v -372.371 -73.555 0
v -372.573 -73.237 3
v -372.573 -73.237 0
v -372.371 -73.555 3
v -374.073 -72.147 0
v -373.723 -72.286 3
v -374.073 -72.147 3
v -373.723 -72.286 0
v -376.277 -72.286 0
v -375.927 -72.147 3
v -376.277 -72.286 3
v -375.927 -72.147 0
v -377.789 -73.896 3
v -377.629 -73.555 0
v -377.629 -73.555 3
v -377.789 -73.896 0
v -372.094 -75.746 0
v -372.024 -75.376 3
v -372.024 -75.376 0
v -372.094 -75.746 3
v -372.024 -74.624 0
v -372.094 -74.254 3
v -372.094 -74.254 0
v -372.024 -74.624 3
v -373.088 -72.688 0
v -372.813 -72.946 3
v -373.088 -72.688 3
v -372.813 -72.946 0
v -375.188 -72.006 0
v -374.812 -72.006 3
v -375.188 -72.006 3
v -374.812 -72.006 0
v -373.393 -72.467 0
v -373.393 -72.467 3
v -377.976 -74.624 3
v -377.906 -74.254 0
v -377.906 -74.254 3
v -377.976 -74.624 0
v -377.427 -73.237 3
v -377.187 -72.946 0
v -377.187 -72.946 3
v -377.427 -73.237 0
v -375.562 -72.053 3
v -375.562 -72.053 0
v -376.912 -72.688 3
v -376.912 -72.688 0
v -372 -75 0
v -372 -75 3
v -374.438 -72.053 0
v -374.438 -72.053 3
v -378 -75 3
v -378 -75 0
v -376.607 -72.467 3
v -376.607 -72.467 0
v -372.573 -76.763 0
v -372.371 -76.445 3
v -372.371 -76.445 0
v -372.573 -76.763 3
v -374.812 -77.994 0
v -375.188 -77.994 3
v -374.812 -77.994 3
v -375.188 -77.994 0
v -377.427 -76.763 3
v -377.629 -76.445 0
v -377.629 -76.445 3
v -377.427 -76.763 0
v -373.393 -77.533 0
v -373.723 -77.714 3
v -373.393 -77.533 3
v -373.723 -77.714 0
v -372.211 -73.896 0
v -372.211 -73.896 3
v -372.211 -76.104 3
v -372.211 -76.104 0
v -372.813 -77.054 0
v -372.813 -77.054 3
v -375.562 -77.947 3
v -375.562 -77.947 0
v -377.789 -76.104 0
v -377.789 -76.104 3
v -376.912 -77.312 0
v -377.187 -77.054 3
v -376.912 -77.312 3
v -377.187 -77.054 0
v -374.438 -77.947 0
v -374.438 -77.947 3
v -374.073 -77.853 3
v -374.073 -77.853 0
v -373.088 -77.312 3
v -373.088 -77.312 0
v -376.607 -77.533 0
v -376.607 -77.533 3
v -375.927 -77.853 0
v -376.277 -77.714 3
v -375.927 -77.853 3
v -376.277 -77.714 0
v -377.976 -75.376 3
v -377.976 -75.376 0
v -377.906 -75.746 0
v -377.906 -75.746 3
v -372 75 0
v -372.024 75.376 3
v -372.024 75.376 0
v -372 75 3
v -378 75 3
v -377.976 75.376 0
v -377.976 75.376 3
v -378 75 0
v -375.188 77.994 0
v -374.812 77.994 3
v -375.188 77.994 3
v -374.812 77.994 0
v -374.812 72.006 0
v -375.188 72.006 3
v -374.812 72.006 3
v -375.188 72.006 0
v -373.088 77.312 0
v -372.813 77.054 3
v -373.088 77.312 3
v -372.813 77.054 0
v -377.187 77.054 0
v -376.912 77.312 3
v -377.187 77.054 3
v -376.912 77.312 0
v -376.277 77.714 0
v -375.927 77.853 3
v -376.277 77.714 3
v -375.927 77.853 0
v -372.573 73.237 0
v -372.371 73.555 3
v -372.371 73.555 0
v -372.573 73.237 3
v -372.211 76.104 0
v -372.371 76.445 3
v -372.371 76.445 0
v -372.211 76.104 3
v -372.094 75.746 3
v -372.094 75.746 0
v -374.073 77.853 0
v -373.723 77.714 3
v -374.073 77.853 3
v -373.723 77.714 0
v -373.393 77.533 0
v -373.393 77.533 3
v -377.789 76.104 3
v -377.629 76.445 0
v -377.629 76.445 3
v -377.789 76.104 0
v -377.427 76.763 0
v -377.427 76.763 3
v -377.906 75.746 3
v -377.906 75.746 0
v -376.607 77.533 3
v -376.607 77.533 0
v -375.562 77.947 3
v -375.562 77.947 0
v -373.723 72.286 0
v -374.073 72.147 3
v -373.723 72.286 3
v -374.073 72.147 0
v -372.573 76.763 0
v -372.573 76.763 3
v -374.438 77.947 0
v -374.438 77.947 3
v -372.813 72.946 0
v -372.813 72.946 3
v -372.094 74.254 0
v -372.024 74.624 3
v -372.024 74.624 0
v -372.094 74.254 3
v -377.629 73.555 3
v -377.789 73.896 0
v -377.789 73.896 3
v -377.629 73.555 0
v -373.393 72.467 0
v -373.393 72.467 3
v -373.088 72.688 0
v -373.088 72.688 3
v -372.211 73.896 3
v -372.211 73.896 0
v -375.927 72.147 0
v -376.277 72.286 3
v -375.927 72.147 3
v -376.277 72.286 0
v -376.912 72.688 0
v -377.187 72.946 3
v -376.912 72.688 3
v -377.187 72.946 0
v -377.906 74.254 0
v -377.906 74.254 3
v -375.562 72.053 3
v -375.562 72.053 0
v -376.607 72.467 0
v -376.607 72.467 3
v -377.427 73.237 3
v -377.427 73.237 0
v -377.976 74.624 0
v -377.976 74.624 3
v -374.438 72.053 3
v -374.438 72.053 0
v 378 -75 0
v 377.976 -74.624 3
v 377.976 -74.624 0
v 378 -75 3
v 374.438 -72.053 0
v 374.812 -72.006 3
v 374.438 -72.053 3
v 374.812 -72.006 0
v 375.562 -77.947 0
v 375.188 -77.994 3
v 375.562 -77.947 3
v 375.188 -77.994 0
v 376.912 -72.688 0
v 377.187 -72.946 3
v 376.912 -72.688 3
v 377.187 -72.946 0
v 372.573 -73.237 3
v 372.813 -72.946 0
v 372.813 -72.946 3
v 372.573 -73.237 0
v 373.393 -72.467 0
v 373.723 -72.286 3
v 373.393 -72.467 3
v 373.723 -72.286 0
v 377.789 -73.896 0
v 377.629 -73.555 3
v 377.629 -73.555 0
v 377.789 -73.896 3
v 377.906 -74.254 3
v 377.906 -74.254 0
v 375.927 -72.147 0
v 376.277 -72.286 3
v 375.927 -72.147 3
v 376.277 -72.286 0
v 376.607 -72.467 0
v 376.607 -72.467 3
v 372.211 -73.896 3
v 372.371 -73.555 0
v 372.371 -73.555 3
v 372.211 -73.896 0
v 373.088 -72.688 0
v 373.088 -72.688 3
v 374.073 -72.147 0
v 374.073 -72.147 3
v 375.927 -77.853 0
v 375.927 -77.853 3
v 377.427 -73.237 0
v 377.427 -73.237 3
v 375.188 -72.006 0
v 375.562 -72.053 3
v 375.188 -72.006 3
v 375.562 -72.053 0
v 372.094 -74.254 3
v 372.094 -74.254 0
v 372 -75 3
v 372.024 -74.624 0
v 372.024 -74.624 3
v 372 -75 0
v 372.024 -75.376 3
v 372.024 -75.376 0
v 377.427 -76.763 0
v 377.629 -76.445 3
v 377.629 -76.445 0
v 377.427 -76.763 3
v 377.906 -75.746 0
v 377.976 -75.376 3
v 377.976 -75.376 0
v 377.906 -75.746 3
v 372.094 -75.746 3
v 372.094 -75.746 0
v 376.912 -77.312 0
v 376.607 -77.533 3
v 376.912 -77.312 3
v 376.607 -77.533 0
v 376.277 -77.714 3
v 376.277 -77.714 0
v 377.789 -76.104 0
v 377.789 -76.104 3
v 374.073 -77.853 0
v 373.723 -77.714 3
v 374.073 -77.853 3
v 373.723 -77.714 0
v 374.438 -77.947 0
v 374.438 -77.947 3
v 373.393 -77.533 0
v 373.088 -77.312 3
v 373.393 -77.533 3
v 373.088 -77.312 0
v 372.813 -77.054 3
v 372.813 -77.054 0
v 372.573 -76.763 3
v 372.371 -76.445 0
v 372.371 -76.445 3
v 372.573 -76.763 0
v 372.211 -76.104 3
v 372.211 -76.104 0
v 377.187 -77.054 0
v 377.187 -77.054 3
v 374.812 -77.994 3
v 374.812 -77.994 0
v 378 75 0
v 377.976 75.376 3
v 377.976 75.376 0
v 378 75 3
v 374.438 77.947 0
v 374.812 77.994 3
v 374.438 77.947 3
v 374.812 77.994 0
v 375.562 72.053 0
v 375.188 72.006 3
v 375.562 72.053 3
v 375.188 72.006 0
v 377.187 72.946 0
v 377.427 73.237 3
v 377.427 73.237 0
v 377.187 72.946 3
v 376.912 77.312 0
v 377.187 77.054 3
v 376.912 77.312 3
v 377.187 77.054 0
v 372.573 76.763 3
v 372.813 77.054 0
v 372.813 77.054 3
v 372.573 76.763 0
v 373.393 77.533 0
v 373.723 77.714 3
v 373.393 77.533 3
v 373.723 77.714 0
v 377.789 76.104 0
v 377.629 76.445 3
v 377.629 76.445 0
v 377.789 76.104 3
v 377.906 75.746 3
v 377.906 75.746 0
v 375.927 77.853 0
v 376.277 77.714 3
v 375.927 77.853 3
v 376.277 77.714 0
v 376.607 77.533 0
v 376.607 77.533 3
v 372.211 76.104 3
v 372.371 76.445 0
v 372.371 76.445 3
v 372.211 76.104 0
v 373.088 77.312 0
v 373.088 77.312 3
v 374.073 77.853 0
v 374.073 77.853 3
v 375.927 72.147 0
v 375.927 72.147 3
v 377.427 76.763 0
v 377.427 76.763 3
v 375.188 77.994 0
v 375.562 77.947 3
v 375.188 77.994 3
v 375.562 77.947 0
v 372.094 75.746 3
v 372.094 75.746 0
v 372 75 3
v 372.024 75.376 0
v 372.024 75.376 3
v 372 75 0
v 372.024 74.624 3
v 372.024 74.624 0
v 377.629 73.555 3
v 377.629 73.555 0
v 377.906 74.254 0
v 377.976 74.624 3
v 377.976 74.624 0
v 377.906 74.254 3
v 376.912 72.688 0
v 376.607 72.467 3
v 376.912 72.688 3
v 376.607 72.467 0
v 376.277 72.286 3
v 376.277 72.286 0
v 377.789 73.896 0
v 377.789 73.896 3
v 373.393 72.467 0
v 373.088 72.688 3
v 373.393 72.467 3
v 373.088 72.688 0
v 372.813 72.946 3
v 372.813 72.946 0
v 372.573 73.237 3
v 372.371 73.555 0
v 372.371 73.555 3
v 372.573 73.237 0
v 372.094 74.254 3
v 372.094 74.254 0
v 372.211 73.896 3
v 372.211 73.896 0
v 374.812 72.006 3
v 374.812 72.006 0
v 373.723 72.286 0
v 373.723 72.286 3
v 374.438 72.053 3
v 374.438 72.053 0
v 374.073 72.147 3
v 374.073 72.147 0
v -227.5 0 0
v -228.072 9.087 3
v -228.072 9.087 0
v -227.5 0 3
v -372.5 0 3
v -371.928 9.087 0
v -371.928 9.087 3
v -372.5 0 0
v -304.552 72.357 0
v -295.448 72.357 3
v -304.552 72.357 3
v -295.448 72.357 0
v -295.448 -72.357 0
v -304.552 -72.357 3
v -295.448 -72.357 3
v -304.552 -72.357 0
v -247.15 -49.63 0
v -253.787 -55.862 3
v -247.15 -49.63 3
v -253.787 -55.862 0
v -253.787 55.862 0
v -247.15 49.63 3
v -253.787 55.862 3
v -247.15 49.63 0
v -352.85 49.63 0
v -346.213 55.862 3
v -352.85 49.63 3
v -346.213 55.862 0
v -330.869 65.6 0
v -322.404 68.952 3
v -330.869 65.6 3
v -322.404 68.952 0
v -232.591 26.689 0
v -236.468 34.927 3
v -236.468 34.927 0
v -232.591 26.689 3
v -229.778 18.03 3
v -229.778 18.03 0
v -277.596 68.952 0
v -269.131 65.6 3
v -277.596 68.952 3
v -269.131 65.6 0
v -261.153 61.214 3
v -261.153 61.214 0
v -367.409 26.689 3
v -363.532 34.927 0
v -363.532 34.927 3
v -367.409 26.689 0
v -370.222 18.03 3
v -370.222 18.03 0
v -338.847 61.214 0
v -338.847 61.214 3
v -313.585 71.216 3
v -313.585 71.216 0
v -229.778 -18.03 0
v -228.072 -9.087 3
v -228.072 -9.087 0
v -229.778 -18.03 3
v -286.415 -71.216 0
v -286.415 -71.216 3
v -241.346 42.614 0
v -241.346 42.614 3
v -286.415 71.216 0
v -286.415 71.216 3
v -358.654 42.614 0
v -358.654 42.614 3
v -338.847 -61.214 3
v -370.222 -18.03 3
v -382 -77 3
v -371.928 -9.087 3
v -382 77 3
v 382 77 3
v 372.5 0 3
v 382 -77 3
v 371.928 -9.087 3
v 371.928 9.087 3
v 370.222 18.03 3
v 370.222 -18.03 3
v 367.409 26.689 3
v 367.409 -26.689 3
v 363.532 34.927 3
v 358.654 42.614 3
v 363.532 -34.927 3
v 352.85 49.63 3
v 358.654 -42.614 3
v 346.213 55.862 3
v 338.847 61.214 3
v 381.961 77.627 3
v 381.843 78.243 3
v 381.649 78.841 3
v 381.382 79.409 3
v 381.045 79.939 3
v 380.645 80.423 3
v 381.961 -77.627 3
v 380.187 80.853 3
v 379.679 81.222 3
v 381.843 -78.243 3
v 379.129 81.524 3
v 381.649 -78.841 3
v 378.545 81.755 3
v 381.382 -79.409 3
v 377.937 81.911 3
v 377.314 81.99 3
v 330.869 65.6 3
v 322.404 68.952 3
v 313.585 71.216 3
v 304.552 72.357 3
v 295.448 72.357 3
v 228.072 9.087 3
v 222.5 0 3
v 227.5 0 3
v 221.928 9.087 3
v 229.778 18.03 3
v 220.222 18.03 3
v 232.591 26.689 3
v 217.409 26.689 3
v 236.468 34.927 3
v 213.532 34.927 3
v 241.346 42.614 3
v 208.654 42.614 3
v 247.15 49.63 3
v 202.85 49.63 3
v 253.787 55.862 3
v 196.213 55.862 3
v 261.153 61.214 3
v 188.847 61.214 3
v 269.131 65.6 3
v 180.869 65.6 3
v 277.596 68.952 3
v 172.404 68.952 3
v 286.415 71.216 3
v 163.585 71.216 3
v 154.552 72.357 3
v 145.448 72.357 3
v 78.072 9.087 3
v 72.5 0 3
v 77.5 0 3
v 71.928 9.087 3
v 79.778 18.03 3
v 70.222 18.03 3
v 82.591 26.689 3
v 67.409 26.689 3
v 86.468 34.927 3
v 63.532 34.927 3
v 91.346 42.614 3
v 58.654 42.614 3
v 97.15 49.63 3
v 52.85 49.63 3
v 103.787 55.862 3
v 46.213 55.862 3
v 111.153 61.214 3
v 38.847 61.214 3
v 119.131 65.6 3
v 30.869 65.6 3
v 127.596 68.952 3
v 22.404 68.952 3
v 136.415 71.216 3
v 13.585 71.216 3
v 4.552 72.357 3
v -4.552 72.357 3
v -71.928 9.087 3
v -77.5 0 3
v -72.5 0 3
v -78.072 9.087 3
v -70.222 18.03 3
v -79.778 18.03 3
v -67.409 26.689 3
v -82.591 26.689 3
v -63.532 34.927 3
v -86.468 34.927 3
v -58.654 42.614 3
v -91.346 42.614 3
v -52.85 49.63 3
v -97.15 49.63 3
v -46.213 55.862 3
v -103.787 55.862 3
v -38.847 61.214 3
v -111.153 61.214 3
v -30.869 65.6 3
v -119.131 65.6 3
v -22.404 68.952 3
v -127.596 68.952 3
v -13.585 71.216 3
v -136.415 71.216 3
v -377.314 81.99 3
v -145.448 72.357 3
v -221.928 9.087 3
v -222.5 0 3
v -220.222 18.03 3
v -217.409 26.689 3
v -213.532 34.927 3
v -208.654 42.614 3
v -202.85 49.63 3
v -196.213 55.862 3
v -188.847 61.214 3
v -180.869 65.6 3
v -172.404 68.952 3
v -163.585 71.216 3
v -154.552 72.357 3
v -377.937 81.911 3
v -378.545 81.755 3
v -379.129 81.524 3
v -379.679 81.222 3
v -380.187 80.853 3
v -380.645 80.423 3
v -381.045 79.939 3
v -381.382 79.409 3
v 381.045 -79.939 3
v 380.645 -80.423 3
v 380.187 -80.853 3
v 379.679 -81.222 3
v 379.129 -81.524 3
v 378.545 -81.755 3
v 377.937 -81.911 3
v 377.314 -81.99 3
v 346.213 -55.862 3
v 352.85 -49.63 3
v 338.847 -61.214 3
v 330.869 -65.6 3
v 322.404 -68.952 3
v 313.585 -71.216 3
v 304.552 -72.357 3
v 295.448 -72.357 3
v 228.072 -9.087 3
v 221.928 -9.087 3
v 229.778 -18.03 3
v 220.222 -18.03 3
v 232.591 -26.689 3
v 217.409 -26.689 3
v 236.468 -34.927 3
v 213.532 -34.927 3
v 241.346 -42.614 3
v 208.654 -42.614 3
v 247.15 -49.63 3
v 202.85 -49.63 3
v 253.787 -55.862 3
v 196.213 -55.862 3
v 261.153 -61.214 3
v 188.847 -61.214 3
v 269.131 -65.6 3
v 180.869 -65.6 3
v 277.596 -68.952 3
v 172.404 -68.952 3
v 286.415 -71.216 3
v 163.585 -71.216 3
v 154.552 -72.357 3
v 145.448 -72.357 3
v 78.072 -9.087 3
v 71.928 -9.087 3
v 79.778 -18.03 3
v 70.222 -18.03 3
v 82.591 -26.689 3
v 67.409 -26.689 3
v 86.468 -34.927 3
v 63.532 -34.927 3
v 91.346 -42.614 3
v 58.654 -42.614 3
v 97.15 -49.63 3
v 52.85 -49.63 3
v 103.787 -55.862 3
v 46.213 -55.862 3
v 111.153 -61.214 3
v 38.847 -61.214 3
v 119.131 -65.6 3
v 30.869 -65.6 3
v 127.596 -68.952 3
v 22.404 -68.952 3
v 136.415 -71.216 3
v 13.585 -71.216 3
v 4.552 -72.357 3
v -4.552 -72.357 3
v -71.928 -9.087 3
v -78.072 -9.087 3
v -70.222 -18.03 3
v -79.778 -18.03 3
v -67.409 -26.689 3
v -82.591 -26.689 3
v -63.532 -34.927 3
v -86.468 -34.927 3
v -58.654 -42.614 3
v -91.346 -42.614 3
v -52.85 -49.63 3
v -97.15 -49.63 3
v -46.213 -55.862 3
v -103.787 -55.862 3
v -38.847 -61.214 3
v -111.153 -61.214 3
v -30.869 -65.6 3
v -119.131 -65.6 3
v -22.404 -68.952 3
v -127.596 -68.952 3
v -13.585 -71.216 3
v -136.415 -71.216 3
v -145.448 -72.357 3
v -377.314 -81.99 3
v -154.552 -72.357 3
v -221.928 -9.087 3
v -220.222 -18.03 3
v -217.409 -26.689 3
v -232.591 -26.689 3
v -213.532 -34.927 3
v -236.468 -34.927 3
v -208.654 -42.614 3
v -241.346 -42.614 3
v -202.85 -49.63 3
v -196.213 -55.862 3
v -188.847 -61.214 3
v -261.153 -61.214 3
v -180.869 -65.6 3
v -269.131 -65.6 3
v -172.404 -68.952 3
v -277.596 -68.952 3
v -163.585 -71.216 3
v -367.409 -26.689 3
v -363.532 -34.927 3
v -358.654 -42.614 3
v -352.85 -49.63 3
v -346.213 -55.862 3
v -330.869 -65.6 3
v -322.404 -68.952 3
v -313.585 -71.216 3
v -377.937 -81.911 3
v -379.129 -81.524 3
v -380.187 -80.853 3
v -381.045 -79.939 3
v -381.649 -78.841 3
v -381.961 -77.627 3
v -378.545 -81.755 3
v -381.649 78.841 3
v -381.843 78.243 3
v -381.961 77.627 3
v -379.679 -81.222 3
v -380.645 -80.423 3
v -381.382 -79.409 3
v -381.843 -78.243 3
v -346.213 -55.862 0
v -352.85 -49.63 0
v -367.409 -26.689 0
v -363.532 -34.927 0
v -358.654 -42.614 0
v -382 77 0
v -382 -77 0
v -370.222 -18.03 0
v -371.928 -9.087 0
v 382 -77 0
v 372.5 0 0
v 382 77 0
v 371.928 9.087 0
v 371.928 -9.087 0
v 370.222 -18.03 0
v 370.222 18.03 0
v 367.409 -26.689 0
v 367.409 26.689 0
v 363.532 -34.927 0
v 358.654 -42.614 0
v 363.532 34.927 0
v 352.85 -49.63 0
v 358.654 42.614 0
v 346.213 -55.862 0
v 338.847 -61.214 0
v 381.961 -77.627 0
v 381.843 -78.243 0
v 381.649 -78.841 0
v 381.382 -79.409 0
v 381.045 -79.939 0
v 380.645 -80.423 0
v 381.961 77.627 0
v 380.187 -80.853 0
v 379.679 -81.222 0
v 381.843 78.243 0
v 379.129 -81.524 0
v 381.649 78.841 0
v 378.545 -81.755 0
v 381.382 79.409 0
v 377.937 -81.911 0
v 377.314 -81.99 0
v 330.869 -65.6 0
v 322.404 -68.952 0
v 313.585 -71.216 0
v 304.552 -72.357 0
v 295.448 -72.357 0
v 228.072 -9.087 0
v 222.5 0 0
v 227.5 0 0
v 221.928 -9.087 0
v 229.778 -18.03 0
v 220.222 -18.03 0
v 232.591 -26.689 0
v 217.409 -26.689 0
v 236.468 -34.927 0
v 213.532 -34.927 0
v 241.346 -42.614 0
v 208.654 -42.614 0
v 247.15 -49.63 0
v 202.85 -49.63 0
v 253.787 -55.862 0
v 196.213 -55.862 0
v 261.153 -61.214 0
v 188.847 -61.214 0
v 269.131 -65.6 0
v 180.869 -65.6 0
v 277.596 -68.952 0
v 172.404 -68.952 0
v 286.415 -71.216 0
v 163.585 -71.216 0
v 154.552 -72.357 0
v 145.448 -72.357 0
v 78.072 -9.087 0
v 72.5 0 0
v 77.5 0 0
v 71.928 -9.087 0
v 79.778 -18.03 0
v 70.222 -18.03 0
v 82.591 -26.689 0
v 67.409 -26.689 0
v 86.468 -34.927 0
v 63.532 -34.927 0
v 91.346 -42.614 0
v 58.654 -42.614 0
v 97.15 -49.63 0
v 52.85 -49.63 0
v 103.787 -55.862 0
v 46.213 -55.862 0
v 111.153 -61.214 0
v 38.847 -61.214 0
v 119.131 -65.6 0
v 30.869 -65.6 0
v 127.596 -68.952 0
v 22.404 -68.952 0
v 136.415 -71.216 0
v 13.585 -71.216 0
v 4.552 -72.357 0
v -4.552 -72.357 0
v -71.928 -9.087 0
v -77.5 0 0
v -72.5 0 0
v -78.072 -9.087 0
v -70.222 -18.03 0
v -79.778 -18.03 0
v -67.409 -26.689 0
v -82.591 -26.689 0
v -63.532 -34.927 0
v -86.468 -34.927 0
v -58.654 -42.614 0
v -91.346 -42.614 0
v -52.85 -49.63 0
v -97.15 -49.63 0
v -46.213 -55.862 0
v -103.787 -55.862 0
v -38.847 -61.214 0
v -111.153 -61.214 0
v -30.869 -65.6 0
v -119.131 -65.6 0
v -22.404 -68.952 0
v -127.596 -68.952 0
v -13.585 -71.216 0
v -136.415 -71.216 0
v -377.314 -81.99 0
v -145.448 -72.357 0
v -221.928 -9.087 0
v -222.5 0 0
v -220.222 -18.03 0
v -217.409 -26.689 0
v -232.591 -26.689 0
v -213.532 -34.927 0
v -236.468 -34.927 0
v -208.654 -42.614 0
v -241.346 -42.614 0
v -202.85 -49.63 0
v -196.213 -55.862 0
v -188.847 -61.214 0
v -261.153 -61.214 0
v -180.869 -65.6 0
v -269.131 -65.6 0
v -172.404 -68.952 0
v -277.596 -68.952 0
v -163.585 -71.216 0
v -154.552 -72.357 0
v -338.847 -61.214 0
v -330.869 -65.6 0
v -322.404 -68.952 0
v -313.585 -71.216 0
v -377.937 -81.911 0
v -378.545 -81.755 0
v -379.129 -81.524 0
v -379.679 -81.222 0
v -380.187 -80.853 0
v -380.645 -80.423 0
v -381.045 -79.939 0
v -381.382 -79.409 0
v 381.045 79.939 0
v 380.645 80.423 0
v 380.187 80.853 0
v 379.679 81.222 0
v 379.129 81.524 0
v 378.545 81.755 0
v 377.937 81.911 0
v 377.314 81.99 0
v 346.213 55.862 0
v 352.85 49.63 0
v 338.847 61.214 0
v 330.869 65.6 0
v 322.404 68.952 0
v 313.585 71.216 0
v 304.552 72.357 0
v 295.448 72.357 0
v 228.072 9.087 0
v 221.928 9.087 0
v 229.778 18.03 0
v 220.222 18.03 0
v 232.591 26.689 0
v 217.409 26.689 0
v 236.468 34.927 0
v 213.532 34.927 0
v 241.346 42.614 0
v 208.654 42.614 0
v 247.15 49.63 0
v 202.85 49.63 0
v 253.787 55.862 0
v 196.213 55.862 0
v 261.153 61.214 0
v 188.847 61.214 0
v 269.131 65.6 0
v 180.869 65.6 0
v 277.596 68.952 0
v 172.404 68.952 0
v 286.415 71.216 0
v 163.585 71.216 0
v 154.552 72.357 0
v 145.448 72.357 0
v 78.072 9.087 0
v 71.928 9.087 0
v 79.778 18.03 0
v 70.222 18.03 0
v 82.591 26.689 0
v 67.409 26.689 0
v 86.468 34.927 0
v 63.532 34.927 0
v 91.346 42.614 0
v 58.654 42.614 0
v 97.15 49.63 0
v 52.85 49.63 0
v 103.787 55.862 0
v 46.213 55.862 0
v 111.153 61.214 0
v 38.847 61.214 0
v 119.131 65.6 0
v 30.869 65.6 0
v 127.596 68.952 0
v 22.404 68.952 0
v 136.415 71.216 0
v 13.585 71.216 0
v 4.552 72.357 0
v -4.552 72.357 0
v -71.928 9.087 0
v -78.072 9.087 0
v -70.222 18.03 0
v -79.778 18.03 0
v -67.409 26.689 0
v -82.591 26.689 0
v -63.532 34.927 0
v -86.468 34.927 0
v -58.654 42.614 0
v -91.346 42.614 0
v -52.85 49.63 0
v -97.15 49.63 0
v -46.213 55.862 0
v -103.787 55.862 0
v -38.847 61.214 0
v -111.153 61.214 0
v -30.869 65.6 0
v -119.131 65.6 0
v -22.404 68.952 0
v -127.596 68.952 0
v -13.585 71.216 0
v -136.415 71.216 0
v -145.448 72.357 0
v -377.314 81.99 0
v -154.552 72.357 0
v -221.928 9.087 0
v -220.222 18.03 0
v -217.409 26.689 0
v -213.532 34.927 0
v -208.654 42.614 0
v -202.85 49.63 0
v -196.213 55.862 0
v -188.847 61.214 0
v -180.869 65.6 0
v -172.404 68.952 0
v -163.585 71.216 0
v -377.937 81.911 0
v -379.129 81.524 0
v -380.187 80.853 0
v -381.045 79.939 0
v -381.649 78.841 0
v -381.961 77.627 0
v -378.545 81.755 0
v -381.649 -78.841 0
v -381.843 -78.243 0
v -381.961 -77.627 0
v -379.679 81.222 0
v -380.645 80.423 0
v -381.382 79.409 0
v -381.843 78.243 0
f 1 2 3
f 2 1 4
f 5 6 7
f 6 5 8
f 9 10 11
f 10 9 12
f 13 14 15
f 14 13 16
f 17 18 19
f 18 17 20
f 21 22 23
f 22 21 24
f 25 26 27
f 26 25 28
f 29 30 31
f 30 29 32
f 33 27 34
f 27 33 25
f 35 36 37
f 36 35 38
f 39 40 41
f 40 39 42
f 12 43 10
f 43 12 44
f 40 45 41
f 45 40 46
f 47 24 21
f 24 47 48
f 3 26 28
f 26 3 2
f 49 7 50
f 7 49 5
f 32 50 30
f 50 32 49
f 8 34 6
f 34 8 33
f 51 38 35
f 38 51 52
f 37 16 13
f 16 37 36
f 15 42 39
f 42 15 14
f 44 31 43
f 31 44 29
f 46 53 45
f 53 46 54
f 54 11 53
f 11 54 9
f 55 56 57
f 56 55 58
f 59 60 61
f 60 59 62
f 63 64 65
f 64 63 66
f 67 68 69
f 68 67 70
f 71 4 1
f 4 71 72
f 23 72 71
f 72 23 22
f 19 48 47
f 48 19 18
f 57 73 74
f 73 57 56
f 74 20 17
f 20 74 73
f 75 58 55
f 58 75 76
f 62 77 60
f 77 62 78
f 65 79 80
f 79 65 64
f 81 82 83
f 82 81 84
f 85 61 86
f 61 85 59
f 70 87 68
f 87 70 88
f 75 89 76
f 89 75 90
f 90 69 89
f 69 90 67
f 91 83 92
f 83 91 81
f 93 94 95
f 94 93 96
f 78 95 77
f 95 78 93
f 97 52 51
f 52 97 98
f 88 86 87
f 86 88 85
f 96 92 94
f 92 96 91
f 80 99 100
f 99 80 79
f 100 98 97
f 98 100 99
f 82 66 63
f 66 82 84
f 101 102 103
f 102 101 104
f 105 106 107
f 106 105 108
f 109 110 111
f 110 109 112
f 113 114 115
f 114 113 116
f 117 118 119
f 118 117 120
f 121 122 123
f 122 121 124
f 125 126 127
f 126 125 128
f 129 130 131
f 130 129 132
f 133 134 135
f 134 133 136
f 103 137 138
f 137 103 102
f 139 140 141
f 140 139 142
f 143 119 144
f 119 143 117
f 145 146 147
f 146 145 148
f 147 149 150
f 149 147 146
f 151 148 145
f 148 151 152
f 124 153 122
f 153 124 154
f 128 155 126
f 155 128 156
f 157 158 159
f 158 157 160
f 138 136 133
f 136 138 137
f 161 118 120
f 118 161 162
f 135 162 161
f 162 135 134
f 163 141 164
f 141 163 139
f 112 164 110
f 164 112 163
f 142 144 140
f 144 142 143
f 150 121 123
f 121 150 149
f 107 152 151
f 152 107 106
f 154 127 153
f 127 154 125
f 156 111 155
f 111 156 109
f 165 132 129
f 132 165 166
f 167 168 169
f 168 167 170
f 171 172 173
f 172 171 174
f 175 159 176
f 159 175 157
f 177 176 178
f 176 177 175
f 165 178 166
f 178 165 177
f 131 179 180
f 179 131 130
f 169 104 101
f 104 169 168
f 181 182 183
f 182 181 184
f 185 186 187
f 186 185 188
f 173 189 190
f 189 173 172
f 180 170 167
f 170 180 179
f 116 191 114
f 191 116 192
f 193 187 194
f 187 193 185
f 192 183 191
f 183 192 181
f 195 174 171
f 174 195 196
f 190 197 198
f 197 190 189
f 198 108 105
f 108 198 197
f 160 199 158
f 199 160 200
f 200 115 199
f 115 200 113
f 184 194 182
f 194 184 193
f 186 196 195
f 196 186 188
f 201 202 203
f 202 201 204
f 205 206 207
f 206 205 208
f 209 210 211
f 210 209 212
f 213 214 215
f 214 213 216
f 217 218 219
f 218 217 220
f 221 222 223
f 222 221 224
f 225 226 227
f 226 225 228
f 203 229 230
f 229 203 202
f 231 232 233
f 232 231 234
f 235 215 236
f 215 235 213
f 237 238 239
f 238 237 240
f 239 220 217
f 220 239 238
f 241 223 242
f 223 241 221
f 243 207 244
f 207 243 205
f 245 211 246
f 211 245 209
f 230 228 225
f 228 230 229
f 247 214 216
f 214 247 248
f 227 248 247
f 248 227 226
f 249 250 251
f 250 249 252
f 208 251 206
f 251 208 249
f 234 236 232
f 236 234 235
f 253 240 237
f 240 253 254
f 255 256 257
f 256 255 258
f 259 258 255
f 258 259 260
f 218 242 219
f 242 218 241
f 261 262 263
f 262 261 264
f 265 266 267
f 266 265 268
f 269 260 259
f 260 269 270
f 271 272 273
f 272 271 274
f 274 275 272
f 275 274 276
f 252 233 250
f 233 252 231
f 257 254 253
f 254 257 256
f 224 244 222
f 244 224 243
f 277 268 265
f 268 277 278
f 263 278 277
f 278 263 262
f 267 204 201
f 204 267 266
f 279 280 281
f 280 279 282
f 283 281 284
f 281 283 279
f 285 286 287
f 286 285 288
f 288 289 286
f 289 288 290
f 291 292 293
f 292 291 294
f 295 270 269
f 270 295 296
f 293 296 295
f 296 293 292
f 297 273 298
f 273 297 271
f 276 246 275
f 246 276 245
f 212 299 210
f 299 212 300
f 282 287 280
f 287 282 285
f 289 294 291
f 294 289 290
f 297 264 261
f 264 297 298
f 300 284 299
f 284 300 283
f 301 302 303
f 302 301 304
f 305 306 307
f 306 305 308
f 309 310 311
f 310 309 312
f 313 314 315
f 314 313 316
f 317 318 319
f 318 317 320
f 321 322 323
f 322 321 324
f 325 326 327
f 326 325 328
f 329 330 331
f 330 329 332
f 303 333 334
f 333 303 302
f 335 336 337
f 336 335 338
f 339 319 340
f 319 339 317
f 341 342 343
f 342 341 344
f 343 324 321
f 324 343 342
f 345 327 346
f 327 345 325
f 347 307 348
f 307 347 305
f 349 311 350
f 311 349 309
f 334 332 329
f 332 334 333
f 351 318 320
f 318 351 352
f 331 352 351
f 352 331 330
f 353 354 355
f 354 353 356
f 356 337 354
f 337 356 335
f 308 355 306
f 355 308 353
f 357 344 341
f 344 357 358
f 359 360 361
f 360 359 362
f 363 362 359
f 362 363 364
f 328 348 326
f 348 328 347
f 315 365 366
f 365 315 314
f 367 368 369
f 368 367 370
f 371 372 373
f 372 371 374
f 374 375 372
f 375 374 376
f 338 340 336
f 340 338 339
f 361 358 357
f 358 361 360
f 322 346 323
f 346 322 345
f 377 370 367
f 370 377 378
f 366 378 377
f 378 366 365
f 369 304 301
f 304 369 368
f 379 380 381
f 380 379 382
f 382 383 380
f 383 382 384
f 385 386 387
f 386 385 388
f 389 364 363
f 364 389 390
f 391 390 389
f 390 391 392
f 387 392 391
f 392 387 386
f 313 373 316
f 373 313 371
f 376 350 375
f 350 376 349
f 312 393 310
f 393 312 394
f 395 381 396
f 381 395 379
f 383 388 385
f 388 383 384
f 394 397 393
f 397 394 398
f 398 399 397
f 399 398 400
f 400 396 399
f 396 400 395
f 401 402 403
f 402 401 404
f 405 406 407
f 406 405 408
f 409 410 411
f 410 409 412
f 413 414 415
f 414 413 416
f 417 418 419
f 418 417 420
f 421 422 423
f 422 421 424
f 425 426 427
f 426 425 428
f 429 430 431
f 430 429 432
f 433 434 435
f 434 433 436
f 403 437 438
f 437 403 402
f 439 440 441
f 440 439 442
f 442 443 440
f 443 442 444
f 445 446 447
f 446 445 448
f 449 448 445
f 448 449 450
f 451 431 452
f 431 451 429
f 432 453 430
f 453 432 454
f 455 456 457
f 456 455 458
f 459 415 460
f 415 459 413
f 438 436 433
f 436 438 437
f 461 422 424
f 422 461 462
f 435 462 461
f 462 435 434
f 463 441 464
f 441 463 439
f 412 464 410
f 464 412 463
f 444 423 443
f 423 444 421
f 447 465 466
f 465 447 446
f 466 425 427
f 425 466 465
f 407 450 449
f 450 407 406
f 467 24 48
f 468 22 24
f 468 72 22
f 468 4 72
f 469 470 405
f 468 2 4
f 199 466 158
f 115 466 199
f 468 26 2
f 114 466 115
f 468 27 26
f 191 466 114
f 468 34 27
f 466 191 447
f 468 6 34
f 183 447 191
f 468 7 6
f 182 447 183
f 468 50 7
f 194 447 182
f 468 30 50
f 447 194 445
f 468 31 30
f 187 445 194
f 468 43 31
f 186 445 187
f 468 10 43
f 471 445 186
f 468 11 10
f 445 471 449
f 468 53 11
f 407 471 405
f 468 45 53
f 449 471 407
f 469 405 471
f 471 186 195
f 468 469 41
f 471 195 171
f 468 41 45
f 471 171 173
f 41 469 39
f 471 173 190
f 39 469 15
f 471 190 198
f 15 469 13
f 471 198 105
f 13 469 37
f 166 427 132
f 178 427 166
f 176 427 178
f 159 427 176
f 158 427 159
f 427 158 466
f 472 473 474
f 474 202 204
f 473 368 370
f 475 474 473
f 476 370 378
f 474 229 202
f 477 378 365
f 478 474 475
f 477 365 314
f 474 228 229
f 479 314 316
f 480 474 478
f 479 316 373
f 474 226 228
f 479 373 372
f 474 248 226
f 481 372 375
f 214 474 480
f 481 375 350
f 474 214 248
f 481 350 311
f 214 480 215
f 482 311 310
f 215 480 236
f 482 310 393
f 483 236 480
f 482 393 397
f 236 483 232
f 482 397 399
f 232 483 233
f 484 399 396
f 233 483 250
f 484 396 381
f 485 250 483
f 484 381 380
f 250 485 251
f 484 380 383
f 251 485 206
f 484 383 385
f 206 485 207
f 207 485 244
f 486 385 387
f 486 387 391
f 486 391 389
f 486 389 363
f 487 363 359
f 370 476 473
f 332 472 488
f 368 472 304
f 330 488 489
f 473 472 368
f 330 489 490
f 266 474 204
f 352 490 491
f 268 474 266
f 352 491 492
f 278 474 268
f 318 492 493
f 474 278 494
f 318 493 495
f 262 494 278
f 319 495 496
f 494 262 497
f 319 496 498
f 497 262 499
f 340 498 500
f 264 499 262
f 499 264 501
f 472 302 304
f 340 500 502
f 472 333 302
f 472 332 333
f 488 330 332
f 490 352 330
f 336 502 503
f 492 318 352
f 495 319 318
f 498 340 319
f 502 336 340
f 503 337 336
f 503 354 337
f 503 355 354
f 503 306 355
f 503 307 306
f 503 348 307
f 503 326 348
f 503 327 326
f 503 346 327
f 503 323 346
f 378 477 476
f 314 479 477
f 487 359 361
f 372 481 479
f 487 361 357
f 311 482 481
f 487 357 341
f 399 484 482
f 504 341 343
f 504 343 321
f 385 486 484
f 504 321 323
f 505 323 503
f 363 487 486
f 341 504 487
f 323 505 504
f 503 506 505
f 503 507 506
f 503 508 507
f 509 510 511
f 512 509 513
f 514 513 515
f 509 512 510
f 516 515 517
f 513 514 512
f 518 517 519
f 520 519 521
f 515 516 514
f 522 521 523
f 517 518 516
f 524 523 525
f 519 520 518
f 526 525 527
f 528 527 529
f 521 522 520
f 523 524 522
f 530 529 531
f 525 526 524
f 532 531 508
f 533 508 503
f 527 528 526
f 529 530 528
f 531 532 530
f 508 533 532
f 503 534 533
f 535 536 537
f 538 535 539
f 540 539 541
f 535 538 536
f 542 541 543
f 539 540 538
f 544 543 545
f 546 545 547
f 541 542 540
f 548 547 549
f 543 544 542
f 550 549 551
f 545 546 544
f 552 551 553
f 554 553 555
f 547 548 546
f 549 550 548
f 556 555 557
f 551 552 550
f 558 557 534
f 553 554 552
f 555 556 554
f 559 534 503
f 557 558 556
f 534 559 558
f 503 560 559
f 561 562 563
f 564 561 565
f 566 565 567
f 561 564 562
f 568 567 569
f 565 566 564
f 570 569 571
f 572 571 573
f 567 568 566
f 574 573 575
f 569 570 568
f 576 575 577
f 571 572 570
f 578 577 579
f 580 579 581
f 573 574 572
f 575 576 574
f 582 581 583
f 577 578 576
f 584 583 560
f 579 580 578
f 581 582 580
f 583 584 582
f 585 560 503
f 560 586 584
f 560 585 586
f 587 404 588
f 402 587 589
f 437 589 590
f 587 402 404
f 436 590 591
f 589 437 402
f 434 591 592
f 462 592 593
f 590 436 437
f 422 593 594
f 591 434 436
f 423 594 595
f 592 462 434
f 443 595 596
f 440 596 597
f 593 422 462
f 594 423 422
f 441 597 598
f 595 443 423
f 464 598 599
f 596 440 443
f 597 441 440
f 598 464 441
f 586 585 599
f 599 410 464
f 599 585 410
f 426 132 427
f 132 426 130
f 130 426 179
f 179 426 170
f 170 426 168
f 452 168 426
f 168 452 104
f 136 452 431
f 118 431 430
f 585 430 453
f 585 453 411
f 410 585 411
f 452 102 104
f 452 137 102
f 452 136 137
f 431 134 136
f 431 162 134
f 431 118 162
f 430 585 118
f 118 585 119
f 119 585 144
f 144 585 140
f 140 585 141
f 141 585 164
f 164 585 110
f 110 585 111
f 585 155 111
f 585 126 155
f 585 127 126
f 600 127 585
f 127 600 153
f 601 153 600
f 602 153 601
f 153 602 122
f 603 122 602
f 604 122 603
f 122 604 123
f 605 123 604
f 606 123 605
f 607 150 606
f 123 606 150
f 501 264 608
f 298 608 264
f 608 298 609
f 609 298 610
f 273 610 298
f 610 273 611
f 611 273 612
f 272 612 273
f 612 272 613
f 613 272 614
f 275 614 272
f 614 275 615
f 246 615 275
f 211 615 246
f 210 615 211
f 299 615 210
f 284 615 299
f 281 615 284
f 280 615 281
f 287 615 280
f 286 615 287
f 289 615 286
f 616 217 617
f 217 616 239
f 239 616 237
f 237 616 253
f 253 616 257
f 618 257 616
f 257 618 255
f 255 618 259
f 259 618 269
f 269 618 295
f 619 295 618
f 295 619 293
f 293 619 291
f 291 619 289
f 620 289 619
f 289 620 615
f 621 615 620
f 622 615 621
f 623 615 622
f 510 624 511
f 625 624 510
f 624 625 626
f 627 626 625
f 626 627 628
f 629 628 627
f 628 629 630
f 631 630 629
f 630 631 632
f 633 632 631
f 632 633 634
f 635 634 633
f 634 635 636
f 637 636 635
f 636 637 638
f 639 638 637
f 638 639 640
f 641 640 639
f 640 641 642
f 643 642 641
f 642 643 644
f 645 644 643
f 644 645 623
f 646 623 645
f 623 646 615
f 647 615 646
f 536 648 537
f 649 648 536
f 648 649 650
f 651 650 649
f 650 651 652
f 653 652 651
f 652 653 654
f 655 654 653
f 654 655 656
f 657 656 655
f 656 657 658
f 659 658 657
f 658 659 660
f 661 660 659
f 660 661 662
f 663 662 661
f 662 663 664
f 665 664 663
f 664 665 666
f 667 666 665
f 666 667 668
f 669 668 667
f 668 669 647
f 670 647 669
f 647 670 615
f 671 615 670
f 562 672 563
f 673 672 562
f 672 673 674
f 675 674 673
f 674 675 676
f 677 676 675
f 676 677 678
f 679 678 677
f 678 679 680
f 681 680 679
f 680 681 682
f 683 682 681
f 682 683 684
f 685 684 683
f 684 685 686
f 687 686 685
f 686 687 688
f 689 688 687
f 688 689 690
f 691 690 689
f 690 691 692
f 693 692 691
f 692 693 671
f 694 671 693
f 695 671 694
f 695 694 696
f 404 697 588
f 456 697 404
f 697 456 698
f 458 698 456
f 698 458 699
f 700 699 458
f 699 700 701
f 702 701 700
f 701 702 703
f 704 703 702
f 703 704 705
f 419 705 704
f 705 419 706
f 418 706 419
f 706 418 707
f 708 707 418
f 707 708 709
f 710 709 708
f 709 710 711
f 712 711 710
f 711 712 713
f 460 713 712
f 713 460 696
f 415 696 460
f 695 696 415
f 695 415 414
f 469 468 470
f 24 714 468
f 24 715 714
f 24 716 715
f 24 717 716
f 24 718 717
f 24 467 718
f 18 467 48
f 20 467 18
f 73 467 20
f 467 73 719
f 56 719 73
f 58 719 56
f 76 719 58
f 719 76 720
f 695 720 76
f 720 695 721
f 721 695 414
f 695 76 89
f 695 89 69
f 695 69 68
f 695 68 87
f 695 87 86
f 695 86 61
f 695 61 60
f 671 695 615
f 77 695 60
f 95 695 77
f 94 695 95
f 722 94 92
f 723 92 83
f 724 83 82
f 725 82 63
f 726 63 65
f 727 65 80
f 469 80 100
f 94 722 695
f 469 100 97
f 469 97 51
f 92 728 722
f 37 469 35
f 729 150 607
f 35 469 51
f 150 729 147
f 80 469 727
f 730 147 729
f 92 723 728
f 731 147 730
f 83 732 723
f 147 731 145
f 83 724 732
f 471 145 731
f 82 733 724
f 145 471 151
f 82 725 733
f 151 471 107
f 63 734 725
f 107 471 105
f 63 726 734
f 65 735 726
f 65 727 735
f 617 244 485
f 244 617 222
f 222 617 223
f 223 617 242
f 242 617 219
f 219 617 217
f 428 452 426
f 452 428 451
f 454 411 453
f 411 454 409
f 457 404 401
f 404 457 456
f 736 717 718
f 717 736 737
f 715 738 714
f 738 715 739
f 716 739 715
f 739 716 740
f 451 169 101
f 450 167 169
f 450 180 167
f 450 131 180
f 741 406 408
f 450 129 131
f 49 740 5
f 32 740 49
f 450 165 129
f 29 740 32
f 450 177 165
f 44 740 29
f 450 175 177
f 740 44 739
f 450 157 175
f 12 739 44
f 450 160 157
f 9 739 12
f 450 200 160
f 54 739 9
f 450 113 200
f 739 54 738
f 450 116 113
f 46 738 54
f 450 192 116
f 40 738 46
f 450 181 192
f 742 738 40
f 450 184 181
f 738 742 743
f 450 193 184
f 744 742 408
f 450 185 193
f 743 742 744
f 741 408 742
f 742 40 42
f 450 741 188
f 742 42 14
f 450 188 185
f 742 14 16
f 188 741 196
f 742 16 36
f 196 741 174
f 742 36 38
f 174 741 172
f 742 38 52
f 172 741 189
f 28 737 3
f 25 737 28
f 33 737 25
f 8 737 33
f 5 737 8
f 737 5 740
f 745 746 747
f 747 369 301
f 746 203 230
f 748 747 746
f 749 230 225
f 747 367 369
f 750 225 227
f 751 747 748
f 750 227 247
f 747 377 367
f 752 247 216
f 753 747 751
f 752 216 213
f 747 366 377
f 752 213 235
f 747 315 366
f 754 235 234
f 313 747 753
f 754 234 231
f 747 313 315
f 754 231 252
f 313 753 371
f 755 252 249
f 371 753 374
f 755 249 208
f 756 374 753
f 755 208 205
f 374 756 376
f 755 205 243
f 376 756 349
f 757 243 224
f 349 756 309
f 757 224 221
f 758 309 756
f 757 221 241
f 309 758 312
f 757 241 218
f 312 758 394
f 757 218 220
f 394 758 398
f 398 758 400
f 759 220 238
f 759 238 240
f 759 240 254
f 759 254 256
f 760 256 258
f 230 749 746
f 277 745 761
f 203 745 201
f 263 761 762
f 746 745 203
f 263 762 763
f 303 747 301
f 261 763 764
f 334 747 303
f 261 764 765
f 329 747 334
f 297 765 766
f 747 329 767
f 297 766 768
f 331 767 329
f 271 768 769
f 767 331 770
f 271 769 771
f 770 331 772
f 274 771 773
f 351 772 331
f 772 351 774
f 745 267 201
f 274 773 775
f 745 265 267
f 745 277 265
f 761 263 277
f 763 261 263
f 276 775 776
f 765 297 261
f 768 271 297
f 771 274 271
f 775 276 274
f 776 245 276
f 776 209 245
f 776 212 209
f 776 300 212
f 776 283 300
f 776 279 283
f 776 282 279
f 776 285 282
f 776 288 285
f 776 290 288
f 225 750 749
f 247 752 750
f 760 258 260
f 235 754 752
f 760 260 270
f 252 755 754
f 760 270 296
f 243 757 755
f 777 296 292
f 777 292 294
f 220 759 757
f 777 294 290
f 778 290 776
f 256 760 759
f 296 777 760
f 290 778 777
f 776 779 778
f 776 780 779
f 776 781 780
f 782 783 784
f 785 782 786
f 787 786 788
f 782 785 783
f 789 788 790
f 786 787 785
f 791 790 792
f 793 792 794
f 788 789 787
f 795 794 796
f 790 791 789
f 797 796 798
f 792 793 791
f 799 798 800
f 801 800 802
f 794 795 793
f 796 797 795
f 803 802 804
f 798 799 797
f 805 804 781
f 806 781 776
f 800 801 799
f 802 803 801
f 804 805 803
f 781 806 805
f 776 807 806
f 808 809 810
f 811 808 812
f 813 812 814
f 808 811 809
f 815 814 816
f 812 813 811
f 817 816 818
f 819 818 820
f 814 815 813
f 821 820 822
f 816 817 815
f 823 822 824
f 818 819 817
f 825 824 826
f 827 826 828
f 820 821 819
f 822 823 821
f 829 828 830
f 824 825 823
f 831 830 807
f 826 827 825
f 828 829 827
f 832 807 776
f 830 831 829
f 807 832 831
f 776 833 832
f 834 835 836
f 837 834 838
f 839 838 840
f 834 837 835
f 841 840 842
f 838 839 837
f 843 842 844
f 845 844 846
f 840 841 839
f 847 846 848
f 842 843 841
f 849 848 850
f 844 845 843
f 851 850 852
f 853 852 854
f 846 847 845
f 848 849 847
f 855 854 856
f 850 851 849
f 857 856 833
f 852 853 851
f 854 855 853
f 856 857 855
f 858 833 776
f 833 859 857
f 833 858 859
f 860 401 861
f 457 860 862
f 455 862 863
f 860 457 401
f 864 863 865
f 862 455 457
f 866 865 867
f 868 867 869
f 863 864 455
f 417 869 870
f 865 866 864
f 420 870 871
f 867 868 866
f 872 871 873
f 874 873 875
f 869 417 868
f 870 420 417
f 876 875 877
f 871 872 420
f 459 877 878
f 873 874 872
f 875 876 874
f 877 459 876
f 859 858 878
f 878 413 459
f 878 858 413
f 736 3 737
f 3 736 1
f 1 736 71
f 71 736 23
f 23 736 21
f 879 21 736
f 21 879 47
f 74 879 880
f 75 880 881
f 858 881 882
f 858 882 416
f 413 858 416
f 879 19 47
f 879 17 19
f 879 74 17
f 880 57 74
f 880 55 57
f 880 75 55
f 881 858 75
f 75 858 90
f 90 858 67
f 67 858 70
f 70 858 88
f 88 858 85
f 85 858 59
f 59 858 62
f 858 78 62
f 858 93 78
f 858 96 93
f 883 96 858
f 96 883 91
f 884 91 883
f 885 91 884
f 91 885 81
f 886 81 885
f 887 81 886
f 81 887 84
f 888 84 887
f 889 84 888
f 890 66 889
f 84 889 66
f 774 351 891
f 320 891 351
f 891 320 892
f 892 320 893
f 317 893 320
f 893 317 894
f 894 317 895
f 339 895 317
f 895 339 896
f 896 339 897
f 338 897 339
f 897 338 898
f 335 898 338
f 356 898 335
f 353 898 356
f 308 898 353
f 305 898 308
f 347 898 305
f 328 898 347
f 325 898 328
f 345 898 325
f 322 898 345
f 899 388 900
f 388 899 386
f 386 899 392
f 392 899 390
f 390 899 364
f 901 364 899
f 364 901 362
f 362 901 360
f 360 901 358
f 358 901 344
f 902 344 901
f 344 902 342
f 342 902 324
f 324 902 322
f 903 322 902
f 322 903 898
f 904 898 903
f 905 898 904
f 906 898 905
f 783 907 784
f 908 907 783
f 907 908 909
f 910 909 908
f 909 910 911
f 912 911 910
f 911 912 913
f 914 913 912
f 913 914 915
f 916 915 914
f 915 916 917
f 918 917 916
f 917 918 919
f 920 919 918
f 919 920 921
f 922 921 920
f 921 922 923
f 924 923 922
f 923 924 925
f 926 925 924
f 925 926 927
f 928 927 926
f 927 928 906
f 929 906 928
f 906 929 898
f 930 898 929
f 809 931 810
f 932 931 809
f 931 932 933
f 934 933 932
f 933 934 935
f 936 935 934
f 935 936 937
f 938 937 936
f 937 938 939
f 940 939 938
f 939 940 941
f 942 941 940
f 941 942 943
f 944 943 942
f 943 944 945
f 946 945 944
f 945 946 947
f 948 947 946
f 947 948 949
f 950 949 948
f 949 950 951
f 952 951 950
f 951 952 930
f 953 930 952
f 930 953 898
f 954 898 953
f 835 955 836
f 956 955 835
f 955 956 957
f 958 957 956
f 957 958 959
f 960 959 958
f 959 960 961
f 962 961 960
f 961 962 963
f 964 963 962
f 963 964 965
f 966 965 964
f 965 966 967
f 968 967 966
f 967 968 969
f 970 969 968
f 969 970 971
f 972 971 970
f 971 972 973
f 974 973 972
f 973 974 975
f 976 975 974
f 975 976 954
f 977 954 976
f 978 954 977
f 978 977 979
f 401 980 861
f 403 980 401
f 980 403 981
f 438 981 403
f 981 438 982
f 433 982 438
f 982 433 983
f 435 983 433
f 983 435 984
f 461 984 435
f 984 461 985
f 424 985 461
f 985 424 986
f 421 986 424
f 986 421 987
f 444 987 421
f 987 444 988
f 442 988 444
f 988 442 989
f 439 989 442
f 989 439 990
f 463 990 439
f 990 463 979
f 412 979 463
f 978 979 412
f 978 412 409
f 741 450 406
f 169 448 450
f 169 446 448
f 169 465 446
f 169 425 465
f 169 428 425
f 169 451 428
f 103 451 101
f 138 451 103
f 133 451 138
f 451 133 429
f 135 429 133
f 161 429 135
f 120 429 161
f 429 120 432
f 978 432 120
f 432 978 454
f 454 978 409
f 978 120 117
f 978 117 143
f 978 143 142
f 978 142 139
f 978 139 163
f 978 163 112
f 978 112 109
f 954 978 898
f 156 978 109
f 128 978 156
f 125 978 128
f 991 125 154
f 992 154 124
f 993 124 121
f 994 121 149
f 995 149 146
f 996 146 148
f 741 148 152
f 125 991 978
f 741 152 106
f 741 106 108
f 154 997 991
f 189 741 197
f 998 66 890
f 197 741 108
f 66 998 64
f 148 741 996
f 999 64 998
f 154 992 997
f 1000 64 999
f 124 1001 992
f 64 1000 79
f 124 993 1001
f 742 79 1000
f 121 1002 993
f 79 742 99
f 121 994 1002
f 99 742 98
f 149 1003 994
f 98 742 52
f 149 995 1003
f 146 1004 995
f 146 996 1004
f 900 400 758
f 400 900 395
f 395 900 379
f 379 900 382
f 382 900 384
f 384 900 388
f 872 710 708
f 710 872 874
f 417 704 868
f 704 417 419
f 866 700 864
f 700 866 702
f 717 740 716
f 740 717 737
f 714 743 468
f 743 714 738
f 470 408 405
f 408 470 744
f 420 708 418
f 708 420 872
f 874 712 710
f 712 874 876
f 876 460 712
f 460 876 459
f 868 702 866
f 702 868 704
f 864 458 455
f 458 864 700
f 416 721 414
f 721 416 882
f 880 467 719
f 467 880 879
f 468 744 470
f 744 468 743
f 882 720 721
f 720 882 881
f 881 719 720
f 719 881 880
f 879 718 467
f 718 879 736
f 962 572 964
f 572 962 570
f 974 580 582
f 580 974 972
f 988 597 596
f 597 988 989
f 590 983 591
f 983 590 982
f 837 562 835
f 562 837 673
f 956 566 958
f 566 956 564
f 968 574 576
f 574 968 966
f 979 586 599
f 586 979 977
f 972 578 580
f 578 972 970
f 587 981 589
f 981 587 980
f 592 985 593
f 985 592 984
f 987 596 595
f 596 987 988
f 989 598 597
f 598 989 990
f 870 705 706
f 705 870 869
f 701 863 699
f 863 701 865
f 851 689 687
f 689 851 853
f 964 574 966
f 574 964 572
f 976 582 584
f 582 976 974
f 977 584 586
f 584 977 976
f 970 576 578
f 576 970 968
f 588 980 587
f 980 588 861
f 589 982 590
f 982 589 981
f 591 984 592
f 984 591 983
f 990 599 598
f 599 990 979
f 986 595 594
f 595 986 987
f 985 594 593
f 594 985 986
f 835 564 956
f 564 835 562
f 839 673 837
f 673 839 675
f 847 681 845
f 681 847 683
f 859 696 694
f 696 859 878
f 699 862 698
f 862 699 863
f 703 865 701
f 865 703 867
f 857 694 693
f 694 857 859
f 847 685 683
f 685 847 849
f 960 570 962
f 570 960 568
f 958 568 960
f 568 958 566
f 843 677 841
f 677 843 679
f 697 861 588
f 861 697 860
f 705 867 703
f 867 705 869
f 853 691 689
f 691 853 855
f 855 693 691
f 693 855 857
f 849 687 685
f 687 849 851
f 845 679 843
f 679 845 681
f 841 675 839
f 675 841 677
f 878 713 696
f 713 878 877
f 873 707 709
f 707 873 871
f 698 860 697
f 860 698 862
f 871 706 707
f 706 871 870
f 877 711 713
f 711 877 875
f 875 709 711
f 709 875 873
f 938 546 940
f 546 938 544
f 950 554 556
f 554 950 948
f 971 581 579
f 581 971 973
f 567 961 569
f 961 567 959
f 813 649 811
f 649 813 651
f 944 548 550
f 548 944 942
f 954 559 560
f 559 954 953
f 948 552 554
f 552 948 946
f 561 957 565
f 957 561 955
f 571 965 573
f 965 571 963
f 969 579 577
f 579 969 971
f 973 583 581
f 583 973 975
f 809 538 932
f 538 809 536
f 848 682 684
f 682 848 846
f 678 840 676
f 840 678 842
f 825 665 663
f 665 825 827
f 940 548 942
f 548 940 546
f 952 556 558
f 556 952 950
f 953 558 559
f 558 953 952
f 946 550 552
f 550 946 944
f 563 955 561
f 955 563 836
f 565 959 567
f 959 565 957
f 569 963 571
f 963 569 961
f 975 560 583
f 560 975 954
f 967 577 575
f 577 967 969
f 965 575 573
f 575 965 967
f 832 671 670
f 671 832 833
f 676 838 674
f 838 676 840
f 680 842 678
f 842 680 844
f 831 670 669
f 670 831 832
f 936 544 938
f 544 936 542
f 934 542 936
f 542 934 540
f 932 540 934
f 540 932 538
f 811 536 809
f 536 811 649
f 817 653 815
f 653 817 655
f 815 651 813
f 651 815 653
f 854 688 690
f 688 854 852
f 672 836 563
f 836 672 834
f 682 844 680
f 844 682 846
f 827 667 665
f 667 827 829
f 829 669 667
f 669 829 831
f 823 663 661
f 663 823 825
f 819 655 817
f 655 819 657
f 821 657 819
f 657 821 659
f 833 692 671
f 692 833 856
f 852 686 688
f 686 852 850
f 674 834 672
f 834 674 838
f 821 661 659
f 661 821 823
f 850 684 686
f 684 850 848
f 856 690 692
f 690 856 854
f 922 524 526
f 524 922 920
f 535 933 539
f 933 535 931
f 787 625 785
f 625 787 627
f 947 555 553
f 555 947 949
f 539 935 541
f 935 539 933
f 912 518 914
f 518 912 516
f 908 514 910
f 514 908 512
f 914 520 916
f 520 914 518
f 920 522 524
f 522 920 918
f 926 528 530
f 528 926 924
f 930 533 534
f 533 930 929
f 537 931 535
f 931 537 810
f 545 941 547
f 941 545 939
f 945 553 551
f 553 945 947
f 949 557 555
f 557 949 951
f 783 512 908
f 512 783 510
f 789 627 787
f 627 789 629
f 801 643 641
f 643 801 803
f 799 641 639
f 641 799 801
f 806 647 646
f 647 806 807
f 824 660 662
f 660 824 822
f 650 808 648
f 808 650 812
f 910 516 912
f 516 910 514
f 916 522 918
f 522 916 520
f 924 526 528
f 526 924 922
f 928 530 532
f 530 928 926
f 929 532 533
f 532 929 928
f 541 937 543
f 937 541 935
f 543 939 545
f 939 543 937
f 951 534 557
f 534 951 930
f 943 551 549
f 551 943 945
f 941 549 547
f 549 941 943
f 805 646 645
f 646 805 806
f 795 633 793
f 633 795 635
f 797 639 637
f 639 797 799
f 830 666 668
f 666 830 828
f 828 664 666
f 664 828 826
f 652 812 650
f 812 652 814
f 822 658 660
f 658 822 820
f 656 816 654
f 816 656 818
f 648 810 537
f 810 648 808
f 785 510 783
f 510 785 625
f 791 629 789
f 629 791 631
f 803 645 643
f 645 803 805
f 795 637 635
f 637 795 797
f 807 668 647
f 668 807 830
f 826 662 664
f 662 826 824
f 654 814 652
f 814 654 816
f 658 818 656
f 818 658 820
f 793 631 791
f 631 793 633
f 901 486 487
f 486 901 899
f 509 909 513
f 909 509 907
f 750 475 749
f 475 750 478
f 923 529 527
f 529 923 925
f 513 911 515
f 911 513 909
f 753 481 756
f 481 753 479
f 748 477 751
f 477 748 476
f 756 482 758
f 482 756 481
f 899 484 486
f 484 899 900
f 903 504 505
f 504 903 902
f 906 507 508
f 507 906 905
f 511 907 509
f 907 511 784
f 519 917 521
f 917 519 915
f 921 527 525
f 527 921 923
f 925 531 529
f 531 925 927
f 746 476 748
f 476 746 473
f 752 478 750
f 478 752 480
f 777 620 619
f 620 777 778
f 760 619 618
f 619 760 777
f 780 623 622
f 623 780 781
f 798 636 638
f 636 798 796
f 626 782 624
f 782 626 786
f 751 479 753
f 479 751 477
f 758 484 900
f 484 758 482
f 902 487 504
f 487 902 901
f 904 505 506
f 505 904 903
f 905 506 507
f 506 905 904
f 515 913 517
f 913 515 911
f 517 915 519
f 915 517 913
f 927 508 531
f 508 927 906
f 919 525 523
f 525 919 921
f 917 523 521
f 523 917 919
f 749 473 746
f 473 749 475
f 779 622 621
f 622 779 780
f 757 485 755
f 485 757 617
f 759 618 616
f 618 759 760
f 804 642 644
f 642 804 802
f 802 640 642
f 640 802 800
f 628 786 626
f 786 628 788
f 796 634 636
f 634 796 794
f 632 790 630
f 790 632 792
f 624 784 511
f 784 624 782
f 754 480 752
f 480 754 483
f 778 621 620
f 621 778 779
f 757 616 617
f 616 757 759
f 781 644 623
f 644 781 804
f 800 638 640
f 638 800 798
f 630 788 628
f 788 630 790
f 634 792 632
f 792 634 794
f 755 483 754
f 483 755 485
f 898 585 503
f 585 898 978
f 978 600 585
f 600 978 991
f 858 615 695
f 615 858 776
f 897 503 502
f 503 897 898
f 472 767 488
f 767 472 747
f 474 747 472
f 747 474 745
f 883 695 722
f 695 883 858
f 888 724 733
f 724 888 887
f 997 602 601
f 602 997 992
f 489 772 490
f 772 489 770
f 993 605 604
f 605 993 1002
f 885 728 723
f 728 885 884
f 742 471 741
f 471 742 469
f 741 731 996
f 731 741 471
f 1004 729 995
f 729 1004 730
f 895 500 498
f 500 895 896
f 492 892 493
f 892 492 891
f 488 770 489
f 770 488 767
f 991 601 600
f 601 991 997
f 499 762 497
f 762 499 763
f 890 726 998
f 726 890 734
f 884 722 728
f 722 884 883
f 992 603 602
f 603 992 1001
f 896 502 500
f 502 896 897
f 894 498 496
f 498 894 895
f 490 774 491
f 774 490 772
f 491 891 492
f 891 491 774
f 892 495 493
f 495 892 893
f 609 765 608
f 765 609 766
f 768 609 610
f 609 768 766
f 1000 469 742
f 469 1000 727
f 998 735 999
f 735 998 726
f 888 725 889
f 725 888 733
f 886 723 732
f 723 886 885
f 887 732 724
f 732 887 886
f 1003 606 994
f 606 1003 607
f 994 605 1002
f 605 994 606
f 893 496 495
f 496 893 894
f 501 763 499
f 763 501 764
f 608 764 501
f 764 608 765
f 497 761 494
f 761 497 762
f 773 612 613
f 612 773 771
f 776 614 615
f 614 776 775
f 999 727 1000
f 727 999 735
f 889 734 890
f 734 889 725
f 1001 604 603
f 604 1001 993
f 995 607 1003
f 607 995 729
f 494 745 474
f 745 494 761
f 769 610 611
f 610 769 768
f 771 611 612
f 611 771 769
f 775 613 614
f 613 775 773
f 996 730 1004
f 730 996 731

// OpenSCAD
$fn = 50;


difference() {
	union() {
		hull() {
			translate(v = [-377.0000000000, 77.0000000000, 0]) {
				cylinder(h = 3, r = 5);
			}
			translate(v = [377.0000000000, 77.0000000000, 0]) {
				cylinder(h = 3, r = 5);
			}
			translate(v = [-377.0000000000, -77.0000000000, 0]) {
				cylinder(h = 3, r = 5);
			}
			translate(v = [377.0000000000, -77.0000000000, 0]) {
				cylinder(h = 3, r = 5);
			}
		}
	}
	union() {
		#translate(v = [-375.0000000000, -75.0000000000, -100.0000000000]) {
			cylinder(h = 200, r = 3.0000000000);
		}
		#translate(v = [-375.0000000000, 75.0000000000, -100.0000000000]) {
			cylinder(h = 200, r = 3.0000000000);
		}
		#translate(v = [375.0000000000, -75.0000000000, -100.0000000000]) {
			cylinder(h = 200, r = 3.0000000000);
		}
		#translate(v = [375.0000000000, 75.0000000000, -100.0000000000]) {
			cylinder(h = 200, r = 3.0000000000);
		}
		#translate(v = [-300.0000000000, 0, 0]) {
			cylinder(h = 3, r = 72.5000000000);
		}
		#translate(v = [-150.0000000000, 0, 0]) {
			cylinder(h = 3, r = 72.5000000000);
		}
		#cylinder(h = 3, r = 72.5000000000);
		#translate(v = [150.0000000000, 0, 0]) {
			cylinder(h = 3, r = 72.5000000000);
		}
		#translate(v = [300.0000000000, 0, 0]) {
			cylinder(h = 3, r = 72.5000000000);
		}
	}
}
